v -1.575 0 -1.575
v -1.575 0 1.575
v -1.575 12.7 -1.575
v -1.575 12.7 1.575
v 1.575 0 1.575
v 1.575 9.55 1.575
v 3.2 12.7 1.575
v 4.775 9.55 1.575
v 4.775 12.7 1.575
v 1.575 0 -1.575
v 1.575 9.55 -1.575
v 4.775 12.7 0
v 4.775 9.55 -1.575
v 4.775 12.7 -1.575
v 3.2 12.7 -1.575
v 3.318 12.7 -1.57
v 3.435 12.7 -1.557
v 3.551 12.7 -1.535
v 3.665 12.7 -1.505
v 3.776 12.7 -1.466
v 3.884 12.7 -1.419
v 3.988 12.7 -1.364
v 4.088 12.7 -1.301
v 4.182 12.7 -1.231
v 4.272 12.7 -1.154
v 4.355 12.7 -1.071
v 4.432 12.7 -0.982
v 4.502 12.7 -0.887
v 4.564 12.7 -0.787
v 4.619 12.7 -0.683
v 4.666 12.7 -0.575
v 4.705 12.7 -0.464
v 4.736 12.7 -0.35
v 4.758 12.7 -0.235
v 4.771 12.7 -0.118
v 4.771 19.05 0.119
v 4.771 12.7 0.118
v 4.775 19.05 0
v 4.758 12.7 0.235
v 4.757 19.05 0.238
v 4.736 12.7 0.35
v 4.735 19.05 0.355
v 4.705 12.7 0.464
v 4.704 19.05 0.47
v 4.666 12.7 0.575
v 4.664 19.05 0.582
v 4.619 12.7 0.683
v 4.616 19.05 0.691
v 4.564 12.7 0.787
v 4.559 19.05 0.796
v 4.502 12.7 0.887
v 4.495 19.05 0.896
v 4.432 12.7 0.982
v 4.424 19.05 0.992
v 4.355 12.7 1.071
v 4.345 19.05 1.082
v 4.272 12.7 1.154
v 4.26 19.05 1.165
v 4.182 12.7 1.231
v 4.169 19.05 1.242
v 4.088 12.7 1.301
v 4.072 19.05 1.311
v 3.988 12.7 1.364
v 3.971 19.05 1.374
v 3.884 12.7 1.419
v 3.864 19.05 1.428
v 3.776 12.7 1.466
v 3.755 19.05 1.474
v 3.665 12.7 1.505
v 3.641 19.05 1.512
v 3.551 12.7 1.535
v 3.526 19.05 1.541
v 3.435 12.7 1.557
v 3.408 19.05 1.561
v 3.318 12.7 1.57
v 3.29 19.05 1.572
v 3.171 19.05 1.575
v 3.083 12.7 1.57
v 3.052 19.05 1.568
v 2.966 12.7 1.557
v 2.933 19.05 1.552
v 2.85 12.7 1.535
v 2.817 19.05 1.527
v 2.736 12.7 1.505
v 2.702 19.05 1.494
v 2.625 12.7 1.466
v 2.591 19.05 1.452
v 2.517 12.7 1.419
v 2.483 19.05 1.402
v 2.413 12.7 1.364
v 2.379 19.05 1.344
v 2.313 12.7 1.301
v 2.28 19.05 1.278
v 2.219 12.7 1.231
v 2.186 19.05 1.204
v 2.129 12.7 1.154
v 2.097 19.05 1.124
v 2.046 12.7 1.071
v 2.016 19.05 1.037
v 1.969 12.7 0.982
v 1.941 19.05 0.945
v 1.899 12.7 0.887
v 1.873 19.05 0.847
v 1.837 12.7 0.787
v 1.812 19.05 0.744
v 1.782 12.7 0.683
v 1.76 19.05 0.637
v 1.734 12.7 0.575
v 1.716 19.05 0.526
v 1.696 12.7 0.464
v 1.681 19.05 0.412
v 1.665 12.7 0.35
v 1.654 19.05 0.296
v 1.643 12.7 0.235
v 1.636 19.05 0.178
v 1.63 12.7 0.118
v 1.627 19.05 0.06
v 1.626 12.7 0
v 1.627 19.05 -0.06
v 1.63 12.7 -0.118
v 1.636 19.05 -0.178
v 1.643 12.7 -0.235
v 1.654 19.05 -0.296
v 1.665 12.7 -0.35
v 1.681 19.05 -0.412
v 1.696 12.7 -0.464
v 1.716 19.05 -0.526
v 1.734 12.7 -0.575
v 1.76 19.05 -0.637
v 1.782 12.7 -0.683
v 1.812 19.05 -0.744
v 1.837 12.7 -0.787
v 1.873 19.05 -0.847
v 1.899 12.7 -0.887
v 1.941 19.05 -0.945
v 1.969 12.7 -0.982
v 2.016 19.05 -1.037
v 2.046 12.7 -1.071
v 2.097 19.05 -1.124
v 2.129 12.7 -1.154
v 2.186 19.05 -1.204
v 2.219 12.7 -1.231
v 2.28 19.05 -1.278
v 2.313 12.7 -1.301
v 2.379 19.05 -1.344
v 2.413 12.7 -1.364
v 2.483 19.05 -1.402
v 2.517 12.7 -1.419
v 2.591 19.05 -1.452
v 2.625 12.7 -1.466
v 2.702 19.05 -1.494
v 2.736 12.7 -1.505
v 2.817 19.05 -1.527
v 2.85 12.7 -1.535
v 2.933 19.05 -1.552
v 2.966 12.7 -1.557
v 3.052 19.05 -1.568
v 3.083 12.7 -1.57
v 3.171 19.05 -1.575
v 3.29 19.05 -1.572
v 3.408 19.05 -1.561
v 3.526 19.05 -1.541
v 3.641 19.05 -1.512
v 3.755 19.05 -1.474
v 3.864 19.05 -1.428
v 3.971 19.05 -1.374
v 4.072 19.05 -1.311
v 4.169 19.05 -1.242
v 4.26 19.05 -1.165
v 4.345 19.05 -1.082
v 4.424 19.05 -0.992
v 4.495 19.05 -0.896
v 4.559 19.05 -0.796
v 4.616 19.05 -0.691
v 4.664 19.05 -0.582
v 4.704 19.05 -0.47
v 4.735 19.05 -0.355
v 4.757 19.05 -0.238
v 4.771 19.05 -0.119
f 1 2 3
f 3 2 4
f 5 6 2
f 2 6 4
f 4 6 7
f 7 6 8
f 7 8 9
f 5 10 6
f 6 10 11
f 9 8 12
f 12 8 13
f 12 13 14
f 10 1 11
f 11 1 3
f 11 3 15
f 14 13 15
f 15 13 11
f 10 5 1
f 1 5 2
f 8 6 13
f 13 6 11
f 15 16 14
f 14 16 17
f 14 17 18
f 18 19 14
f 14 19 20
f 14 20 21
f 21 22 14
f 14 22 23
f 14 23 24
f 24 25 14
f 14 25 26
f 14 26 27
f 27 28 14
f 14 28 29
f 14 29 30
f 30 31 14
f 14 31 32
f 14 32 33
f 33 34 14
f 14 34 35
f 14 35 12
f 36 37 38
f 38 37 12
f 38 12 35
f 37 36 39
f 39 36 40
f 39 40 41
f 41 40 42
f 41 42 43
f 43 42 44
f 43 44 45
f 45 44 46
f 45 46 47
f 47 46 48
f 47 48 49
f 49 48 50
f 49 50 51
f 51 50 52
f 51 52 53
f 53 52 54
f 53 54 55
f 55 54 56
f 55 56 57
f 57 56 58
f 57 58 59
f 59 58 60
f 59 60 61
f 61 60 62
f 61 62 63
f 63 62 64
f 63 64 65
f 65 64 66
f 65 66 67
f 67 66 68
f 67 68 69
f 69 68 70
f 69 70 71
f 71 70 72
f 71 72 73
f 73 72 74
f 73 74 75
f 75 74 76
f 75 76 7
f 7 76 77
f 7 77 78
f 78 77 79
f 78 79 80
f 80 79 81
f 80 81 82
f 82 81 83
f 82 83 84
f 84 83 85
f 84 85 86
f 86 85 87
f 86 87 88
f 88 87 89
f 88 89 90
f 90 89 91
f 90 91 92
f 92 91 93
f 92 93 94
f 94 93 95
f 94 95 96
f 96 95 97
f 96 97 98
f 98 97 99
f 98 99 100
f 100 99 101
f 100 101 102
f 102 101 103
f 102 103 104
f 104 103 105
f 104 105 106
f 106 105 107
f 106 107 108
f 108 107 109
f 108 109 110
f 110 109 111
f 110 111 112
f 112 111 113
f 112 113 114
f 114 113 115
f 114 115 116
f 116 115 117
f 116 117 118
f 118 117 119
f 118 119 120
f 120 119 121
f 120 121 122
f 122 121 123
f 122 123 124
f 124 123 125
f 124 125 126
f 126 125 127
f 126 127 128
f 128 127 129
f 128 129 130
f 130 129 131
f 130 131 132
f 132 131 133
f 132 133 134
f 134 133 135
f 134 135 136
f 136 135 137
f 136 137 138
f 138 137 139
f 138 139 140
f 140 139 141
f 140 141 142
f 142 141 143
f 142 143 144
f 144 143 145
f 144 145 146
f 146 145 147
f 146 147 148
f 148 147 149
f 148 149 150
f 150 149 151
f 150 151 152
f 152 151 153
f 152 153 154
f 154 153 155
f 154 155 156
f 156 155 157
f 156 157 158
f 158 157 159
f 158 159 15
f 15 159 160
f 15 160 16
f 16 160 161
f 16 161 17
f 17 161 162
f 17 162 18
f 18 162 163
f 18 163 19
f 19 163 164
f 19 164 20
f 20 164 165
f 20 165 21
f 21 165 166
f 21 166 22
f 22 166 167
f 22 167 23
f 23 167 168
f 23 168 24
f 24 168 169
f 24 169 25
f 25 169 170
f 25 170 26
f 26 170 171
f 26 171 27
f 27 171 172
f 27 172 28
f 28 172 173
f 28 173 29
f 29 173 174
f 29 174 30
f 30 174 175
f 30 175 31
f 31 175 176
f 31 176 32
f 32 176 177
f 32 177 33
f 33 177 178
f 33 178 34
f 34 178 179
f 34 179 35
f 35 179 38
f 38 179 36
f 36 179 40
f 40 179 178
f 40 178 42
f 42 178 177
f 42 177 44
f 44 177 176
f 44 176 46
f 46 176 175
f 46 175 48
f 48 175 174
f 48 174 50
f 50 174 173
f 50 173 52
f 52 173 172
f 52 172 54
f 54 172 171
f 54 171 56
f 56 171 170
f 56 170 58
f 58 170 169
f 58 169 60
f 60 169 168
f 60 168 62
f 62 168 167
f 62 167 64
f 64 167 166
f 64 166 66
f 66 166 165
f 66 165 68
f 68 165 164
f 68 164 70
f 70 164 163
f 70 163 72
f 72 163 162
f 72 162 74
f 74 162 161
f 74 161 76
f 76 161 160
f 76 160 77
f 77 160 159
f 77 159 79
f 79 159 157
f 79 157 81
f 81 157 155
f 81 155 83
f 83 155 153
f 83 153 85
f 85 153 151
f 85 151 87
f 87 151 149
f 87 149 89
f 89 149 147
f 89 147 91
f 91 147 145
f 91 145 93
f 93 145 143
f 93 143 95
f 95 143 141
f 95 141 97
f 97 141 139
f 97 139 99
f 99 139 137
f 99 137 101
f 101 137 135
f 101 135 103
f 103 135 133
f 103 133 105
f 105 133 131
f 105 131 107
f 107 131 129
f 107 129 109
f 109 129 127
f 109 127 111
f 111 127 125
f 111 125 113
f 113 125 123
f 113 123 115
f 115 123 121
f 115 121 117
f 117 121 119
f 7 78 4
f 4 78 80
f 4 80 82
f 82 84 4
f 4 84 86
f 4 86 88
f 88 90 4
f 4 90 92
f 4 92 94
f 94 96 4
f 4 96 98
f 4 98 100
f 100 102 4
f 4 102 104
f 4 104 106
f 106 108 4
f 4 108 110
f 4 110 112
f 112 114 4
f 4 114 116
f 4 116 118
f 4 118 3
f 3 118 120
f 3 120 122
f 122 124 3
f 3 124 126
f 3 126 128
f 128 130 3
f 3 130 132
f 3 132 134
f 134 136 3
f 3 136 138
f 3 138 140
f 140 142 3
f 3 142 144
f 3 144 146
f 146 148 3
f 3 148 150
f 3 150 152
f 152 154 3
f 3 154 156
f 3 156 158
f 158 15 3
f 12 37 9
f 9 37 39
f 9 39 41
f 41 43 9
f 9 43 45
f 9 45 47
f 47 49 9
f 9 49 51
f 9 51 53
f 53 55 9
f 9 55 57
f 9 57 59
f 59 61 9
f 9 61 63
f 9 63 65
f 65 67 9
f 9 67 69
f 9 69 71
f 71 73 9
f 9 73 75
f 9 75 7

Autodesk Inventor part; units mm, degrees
ref_plane "YZ Plane" through (0, 0, 0) normal (1, 0, 0) x (0, 1, 0)
ref_plane "XZ Plane" through (0, 0, 0) normal (0, 1, 0) x (-1, 0, 0)
ref_plane "XY Plane" through (0, 0, 0) normal (0, 0, 1) x (1, 0, 0)
sketch "Sketch1" plane through (0, 0, 0) normal (0, 1, 0) x (-1, 0, 0)
  line L0 (-1.5748, 1.5748) -> (1.5748, 1.5748)
  line L1 (1.5748, 1.5748) -> (1.5748, -1.5748)
  line L2 (1.5748, -1.5748) -> (-1.5748, -1.5748)
  line L3 (-1.5748, -1.5748) -> (-1.5748, 1.5748)
  line L4 (-1.5748, 1.5748) -> (1.5748, -1.5748) construction
  line L5 (1.5748, 1.5748) -> (-1.5748, -1.5748) construction
  point P0 (0, 0)
  dimension "d0" = 3.1496
  dimension "d1" = 3.1496
extrude "Extrusion1" add sketch "Sketch1" along normal blind 6.35
sketch "Sketch2" plane through (-1.5748, 0, 1.5748) normal (0, 0, 1) x (1, 0, 0)
  line L0 (3.1496, 0) -> (0, 0) projected
  line L1 (3.1496, 0) -> (0, 0)
  line L2 (0, 0) -> (0, 12.7)
  line L3 (0, 12.7) -> (3.1496, 12.7)
  line L4 (3.1496, 12.7) -> (3.1496, 0)
  line L5 (0, 12.7) -> (6.35, 12.7)
  line L6 (6.35, 12.7) -> (6.35, 9.5504)
  line L7 (6.35, 9.5504) -> (0, 9.5504)
  line L8 (0, 9.5504) -> (0, 12.7)
  point P0 (1.5748, 0)
  point P1 (3.1496, 9.5504)
  dimension "d4" = 12.7
  dimension "d5" = 6.35
  dimension "d6" = 3.1496
extrude "Extrusion2" add sketch "Sketch2" against normal blind 3.1496
sketch "Sketch3" plane through (-1.5748, 12.7, 1.5748) normal (0, 1, 0) x (1, 0, 0)
  line L0 (0, 3.1496) -> (6.35, 3.1496) projected
  line L1 (6.35, 3.1496) -> (3.2004, 3.1496)
  line L2 (3.2004, 3.1496) -> (3.2004, 0)
  line L3 (3.2004, 0) -> (6.35, 0)
  line L4 (6.35, 0) -> (6.35, 3.1496)
  circle A0 centre (4.7752, 1.5748) radius 1.5748
  point P0 (1.5748, 1.5748)
  dimension "d9" = 3.1496
  dimension "d10" = 3.1496
extrude "Extrusion3" add sketch "Sketch3" along normal blind 6.35 contours A0
properties part number "Handle"
